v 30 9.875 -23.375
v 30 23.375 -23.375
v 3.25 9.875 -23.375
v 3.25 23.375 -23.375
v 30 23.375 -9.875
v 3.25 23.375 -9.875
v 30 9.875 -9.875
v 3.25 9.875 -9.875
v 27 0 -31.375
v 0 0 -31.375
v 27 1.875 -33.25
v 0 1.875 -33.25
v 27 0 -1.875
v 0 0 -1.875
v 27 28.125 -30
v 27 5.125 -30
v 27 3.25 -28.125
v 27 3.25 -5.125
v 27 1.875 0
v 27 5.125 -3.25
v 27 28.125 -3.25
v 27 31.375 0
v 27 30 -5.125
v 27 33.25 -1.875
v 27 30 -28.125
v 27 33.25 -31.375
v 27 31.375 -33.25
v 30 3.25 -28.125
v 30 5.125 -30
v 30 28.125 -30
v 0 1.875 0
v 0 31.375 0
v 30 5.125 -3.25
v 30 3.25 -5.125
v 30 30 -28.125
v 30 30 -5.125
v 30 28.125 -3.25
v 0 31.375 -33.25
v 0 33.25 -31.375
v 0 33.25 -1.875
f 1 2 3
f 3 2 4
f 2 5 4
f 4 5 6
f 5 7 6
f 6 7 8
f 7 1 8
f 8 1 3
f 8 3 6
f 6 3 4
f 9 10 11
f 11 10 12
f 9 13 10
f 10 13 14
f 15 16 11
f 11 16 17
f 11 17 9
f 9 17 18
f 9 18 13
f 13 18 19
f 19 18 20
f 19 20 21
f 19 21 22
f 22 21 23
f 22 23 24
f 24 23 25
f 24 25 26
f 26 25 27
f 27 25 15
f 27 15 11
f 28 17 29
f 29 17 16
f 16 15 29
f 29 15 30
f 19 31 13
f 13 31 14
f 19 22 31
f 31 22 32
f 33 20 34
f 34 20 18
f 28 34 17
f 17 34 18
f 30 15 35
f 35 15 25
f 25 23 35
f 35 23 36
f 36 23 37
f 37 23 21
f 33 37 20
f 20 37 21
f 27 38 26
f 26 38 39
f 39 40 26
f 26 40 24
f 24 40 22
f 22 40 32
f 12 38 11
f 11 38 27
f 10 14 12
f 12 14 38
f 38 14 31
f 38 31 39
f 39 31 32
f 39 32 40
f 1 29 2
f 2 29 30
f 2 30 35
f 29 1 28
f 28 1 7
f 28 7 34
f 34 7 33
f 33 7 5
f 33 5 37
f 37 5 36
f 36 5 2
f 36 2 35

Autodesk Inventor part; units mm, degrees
ref_plane "YZ Plane" through (0, 0, 0) normal (1, 0, 0) x (0, 1, 0)
ref_plane "XZ Plane" through (0, 0, 0) normal (0, 1, 0) x (-1, 0, 0)
ref_plane "XY Plane" through (0, 0, 0) normal (0, 0, 1) x (1, 0, 0)
sketch "Sketch1" plane through (0, 0, 0) normal (1, 0, 0) x (0, 1, 0)
  line L0 (0, 0) -> (33.25, 0)
  line L1 (33.25, 0) -> (33.25, -33.25)
  line L2 (33.25, -33.25) -> (0, -33.25)
  line L3 (0, -33.25) -> (0, 0)
  dimension "d0" = 33.25
  dimension "d1" = 33.25
extrude "Extrusion1" add sketch "Sketch1" along normal blind 30
sketch "Sketch2" plane through (30, 0, 0) normal (1, 0, 0) x (0, 0, -1)
  line L0 (3.25, 3.25) -> (30, 3.25)
  line L1 (30, 3.25) -> (30, 30)
  line L2 (30, 30) -> (3.25, 30)
  line L3 (3.25, 30) -> (3.25, 3.25)
  point P0 (0, 0)
  dimension "d4" = 26.75
  dimension "d5" = 26.75
sketch "Sketch3" plane through (30, 0, 0) normal (1, 0, 0) x (0, 0, -1)
  line L0 (33.25, 0) -> (33.25, 33.25) projected
  line L1 (0, 0) -> (33.25, 0)
  line L2 (33.25, 0) -> (33.25, 33.25)
  line L3 (33.25, 33.25) -> (0, 33.25)
  line L4 (0, 33.25) -> (0, 0)
sketch "Sketch4" plane through (30, 0, 0) normal (1, 0, 0) x (0, 0, -1)
  line L0 (3.25, 3.25) -> (30, 3.25)
  line L1 (30, 3.25) -> (30, 30)
  line L2 (30, 30) -> (3.25, 30)
  line L3 (3.25, 30) -> (3.25, 3.25)
  line L4 (0, 33.25) -> (0, 0) projected
  line L5 (33.25, 0) -> (33.25, 33.25) projected
  line L6 (0, 0) -> (33.25, 0)
  line L7 (33.25, 0) -> (33.25, 33.25)
  line L8 (33.25, 33.25) -> (0, 33.25)
  line L9 (0, 33.25) -> (0, 0)
  dimension "d6" = 26.75
  dimension "d7" = 26.75
extrude "Extrusion2" cut sketch "Sketch4" against normal blind 3
chamfer "Chamfer1" distance 1.875 angle 45 8 edges at (13.5, 33.25, 0) (13.5, 33.25, -33.25) (28.5, 30, -3.25) (28.5, 30, -30) (28.5, 3.25, -3.25) (13.5, 0, 0) (28.5, 3.25, -30) (13.5, 0, -33.25)
sketch "Sketch5" plane through (30, 0, 0) normal (1, 0, 0) x (0, 0, -1)
  line L0 (9.875, 9.875) -> (23.375, 9.875)
  line L1 (23.375, 9.875) -> (23.375, 23.375)
  line L2 (23.375, 23.375) -> (9.875, 23.375)
  line L3 (9.875, 23.375) -> (9.875, 9.875)
  line L4 (28.125, 30) -> (5.125, 30) projected
  line L5 (30, 5.125) -> (30, 28.125) projected
  line L6 (3.25, 3.25) -> (30, 3.25)
  line L7 (30, 3.25) -> (30, 30)
  line L8 (30, 30) -> (3.25, 30)
  line L9 (3.25, 30) -> (3.25, 3.25)
  point P0 (0, 0)
  dimension "d13" = 13.5
  dimension "d14" = 13.5
  dimension "d15" = 6.625
  dimension "d16" = 6.625
extrude "Extrusion3" cut sketch "Sketch5" against normal blind 26.75 contours L3 L2 L1 L0
sketch "Sketch6" plane through (0, 1.875, 0) normal (0, 0, 1) x (1, 0, 0)
  point P0 (0, -1.875)
properties part number "cuvette holder block"
